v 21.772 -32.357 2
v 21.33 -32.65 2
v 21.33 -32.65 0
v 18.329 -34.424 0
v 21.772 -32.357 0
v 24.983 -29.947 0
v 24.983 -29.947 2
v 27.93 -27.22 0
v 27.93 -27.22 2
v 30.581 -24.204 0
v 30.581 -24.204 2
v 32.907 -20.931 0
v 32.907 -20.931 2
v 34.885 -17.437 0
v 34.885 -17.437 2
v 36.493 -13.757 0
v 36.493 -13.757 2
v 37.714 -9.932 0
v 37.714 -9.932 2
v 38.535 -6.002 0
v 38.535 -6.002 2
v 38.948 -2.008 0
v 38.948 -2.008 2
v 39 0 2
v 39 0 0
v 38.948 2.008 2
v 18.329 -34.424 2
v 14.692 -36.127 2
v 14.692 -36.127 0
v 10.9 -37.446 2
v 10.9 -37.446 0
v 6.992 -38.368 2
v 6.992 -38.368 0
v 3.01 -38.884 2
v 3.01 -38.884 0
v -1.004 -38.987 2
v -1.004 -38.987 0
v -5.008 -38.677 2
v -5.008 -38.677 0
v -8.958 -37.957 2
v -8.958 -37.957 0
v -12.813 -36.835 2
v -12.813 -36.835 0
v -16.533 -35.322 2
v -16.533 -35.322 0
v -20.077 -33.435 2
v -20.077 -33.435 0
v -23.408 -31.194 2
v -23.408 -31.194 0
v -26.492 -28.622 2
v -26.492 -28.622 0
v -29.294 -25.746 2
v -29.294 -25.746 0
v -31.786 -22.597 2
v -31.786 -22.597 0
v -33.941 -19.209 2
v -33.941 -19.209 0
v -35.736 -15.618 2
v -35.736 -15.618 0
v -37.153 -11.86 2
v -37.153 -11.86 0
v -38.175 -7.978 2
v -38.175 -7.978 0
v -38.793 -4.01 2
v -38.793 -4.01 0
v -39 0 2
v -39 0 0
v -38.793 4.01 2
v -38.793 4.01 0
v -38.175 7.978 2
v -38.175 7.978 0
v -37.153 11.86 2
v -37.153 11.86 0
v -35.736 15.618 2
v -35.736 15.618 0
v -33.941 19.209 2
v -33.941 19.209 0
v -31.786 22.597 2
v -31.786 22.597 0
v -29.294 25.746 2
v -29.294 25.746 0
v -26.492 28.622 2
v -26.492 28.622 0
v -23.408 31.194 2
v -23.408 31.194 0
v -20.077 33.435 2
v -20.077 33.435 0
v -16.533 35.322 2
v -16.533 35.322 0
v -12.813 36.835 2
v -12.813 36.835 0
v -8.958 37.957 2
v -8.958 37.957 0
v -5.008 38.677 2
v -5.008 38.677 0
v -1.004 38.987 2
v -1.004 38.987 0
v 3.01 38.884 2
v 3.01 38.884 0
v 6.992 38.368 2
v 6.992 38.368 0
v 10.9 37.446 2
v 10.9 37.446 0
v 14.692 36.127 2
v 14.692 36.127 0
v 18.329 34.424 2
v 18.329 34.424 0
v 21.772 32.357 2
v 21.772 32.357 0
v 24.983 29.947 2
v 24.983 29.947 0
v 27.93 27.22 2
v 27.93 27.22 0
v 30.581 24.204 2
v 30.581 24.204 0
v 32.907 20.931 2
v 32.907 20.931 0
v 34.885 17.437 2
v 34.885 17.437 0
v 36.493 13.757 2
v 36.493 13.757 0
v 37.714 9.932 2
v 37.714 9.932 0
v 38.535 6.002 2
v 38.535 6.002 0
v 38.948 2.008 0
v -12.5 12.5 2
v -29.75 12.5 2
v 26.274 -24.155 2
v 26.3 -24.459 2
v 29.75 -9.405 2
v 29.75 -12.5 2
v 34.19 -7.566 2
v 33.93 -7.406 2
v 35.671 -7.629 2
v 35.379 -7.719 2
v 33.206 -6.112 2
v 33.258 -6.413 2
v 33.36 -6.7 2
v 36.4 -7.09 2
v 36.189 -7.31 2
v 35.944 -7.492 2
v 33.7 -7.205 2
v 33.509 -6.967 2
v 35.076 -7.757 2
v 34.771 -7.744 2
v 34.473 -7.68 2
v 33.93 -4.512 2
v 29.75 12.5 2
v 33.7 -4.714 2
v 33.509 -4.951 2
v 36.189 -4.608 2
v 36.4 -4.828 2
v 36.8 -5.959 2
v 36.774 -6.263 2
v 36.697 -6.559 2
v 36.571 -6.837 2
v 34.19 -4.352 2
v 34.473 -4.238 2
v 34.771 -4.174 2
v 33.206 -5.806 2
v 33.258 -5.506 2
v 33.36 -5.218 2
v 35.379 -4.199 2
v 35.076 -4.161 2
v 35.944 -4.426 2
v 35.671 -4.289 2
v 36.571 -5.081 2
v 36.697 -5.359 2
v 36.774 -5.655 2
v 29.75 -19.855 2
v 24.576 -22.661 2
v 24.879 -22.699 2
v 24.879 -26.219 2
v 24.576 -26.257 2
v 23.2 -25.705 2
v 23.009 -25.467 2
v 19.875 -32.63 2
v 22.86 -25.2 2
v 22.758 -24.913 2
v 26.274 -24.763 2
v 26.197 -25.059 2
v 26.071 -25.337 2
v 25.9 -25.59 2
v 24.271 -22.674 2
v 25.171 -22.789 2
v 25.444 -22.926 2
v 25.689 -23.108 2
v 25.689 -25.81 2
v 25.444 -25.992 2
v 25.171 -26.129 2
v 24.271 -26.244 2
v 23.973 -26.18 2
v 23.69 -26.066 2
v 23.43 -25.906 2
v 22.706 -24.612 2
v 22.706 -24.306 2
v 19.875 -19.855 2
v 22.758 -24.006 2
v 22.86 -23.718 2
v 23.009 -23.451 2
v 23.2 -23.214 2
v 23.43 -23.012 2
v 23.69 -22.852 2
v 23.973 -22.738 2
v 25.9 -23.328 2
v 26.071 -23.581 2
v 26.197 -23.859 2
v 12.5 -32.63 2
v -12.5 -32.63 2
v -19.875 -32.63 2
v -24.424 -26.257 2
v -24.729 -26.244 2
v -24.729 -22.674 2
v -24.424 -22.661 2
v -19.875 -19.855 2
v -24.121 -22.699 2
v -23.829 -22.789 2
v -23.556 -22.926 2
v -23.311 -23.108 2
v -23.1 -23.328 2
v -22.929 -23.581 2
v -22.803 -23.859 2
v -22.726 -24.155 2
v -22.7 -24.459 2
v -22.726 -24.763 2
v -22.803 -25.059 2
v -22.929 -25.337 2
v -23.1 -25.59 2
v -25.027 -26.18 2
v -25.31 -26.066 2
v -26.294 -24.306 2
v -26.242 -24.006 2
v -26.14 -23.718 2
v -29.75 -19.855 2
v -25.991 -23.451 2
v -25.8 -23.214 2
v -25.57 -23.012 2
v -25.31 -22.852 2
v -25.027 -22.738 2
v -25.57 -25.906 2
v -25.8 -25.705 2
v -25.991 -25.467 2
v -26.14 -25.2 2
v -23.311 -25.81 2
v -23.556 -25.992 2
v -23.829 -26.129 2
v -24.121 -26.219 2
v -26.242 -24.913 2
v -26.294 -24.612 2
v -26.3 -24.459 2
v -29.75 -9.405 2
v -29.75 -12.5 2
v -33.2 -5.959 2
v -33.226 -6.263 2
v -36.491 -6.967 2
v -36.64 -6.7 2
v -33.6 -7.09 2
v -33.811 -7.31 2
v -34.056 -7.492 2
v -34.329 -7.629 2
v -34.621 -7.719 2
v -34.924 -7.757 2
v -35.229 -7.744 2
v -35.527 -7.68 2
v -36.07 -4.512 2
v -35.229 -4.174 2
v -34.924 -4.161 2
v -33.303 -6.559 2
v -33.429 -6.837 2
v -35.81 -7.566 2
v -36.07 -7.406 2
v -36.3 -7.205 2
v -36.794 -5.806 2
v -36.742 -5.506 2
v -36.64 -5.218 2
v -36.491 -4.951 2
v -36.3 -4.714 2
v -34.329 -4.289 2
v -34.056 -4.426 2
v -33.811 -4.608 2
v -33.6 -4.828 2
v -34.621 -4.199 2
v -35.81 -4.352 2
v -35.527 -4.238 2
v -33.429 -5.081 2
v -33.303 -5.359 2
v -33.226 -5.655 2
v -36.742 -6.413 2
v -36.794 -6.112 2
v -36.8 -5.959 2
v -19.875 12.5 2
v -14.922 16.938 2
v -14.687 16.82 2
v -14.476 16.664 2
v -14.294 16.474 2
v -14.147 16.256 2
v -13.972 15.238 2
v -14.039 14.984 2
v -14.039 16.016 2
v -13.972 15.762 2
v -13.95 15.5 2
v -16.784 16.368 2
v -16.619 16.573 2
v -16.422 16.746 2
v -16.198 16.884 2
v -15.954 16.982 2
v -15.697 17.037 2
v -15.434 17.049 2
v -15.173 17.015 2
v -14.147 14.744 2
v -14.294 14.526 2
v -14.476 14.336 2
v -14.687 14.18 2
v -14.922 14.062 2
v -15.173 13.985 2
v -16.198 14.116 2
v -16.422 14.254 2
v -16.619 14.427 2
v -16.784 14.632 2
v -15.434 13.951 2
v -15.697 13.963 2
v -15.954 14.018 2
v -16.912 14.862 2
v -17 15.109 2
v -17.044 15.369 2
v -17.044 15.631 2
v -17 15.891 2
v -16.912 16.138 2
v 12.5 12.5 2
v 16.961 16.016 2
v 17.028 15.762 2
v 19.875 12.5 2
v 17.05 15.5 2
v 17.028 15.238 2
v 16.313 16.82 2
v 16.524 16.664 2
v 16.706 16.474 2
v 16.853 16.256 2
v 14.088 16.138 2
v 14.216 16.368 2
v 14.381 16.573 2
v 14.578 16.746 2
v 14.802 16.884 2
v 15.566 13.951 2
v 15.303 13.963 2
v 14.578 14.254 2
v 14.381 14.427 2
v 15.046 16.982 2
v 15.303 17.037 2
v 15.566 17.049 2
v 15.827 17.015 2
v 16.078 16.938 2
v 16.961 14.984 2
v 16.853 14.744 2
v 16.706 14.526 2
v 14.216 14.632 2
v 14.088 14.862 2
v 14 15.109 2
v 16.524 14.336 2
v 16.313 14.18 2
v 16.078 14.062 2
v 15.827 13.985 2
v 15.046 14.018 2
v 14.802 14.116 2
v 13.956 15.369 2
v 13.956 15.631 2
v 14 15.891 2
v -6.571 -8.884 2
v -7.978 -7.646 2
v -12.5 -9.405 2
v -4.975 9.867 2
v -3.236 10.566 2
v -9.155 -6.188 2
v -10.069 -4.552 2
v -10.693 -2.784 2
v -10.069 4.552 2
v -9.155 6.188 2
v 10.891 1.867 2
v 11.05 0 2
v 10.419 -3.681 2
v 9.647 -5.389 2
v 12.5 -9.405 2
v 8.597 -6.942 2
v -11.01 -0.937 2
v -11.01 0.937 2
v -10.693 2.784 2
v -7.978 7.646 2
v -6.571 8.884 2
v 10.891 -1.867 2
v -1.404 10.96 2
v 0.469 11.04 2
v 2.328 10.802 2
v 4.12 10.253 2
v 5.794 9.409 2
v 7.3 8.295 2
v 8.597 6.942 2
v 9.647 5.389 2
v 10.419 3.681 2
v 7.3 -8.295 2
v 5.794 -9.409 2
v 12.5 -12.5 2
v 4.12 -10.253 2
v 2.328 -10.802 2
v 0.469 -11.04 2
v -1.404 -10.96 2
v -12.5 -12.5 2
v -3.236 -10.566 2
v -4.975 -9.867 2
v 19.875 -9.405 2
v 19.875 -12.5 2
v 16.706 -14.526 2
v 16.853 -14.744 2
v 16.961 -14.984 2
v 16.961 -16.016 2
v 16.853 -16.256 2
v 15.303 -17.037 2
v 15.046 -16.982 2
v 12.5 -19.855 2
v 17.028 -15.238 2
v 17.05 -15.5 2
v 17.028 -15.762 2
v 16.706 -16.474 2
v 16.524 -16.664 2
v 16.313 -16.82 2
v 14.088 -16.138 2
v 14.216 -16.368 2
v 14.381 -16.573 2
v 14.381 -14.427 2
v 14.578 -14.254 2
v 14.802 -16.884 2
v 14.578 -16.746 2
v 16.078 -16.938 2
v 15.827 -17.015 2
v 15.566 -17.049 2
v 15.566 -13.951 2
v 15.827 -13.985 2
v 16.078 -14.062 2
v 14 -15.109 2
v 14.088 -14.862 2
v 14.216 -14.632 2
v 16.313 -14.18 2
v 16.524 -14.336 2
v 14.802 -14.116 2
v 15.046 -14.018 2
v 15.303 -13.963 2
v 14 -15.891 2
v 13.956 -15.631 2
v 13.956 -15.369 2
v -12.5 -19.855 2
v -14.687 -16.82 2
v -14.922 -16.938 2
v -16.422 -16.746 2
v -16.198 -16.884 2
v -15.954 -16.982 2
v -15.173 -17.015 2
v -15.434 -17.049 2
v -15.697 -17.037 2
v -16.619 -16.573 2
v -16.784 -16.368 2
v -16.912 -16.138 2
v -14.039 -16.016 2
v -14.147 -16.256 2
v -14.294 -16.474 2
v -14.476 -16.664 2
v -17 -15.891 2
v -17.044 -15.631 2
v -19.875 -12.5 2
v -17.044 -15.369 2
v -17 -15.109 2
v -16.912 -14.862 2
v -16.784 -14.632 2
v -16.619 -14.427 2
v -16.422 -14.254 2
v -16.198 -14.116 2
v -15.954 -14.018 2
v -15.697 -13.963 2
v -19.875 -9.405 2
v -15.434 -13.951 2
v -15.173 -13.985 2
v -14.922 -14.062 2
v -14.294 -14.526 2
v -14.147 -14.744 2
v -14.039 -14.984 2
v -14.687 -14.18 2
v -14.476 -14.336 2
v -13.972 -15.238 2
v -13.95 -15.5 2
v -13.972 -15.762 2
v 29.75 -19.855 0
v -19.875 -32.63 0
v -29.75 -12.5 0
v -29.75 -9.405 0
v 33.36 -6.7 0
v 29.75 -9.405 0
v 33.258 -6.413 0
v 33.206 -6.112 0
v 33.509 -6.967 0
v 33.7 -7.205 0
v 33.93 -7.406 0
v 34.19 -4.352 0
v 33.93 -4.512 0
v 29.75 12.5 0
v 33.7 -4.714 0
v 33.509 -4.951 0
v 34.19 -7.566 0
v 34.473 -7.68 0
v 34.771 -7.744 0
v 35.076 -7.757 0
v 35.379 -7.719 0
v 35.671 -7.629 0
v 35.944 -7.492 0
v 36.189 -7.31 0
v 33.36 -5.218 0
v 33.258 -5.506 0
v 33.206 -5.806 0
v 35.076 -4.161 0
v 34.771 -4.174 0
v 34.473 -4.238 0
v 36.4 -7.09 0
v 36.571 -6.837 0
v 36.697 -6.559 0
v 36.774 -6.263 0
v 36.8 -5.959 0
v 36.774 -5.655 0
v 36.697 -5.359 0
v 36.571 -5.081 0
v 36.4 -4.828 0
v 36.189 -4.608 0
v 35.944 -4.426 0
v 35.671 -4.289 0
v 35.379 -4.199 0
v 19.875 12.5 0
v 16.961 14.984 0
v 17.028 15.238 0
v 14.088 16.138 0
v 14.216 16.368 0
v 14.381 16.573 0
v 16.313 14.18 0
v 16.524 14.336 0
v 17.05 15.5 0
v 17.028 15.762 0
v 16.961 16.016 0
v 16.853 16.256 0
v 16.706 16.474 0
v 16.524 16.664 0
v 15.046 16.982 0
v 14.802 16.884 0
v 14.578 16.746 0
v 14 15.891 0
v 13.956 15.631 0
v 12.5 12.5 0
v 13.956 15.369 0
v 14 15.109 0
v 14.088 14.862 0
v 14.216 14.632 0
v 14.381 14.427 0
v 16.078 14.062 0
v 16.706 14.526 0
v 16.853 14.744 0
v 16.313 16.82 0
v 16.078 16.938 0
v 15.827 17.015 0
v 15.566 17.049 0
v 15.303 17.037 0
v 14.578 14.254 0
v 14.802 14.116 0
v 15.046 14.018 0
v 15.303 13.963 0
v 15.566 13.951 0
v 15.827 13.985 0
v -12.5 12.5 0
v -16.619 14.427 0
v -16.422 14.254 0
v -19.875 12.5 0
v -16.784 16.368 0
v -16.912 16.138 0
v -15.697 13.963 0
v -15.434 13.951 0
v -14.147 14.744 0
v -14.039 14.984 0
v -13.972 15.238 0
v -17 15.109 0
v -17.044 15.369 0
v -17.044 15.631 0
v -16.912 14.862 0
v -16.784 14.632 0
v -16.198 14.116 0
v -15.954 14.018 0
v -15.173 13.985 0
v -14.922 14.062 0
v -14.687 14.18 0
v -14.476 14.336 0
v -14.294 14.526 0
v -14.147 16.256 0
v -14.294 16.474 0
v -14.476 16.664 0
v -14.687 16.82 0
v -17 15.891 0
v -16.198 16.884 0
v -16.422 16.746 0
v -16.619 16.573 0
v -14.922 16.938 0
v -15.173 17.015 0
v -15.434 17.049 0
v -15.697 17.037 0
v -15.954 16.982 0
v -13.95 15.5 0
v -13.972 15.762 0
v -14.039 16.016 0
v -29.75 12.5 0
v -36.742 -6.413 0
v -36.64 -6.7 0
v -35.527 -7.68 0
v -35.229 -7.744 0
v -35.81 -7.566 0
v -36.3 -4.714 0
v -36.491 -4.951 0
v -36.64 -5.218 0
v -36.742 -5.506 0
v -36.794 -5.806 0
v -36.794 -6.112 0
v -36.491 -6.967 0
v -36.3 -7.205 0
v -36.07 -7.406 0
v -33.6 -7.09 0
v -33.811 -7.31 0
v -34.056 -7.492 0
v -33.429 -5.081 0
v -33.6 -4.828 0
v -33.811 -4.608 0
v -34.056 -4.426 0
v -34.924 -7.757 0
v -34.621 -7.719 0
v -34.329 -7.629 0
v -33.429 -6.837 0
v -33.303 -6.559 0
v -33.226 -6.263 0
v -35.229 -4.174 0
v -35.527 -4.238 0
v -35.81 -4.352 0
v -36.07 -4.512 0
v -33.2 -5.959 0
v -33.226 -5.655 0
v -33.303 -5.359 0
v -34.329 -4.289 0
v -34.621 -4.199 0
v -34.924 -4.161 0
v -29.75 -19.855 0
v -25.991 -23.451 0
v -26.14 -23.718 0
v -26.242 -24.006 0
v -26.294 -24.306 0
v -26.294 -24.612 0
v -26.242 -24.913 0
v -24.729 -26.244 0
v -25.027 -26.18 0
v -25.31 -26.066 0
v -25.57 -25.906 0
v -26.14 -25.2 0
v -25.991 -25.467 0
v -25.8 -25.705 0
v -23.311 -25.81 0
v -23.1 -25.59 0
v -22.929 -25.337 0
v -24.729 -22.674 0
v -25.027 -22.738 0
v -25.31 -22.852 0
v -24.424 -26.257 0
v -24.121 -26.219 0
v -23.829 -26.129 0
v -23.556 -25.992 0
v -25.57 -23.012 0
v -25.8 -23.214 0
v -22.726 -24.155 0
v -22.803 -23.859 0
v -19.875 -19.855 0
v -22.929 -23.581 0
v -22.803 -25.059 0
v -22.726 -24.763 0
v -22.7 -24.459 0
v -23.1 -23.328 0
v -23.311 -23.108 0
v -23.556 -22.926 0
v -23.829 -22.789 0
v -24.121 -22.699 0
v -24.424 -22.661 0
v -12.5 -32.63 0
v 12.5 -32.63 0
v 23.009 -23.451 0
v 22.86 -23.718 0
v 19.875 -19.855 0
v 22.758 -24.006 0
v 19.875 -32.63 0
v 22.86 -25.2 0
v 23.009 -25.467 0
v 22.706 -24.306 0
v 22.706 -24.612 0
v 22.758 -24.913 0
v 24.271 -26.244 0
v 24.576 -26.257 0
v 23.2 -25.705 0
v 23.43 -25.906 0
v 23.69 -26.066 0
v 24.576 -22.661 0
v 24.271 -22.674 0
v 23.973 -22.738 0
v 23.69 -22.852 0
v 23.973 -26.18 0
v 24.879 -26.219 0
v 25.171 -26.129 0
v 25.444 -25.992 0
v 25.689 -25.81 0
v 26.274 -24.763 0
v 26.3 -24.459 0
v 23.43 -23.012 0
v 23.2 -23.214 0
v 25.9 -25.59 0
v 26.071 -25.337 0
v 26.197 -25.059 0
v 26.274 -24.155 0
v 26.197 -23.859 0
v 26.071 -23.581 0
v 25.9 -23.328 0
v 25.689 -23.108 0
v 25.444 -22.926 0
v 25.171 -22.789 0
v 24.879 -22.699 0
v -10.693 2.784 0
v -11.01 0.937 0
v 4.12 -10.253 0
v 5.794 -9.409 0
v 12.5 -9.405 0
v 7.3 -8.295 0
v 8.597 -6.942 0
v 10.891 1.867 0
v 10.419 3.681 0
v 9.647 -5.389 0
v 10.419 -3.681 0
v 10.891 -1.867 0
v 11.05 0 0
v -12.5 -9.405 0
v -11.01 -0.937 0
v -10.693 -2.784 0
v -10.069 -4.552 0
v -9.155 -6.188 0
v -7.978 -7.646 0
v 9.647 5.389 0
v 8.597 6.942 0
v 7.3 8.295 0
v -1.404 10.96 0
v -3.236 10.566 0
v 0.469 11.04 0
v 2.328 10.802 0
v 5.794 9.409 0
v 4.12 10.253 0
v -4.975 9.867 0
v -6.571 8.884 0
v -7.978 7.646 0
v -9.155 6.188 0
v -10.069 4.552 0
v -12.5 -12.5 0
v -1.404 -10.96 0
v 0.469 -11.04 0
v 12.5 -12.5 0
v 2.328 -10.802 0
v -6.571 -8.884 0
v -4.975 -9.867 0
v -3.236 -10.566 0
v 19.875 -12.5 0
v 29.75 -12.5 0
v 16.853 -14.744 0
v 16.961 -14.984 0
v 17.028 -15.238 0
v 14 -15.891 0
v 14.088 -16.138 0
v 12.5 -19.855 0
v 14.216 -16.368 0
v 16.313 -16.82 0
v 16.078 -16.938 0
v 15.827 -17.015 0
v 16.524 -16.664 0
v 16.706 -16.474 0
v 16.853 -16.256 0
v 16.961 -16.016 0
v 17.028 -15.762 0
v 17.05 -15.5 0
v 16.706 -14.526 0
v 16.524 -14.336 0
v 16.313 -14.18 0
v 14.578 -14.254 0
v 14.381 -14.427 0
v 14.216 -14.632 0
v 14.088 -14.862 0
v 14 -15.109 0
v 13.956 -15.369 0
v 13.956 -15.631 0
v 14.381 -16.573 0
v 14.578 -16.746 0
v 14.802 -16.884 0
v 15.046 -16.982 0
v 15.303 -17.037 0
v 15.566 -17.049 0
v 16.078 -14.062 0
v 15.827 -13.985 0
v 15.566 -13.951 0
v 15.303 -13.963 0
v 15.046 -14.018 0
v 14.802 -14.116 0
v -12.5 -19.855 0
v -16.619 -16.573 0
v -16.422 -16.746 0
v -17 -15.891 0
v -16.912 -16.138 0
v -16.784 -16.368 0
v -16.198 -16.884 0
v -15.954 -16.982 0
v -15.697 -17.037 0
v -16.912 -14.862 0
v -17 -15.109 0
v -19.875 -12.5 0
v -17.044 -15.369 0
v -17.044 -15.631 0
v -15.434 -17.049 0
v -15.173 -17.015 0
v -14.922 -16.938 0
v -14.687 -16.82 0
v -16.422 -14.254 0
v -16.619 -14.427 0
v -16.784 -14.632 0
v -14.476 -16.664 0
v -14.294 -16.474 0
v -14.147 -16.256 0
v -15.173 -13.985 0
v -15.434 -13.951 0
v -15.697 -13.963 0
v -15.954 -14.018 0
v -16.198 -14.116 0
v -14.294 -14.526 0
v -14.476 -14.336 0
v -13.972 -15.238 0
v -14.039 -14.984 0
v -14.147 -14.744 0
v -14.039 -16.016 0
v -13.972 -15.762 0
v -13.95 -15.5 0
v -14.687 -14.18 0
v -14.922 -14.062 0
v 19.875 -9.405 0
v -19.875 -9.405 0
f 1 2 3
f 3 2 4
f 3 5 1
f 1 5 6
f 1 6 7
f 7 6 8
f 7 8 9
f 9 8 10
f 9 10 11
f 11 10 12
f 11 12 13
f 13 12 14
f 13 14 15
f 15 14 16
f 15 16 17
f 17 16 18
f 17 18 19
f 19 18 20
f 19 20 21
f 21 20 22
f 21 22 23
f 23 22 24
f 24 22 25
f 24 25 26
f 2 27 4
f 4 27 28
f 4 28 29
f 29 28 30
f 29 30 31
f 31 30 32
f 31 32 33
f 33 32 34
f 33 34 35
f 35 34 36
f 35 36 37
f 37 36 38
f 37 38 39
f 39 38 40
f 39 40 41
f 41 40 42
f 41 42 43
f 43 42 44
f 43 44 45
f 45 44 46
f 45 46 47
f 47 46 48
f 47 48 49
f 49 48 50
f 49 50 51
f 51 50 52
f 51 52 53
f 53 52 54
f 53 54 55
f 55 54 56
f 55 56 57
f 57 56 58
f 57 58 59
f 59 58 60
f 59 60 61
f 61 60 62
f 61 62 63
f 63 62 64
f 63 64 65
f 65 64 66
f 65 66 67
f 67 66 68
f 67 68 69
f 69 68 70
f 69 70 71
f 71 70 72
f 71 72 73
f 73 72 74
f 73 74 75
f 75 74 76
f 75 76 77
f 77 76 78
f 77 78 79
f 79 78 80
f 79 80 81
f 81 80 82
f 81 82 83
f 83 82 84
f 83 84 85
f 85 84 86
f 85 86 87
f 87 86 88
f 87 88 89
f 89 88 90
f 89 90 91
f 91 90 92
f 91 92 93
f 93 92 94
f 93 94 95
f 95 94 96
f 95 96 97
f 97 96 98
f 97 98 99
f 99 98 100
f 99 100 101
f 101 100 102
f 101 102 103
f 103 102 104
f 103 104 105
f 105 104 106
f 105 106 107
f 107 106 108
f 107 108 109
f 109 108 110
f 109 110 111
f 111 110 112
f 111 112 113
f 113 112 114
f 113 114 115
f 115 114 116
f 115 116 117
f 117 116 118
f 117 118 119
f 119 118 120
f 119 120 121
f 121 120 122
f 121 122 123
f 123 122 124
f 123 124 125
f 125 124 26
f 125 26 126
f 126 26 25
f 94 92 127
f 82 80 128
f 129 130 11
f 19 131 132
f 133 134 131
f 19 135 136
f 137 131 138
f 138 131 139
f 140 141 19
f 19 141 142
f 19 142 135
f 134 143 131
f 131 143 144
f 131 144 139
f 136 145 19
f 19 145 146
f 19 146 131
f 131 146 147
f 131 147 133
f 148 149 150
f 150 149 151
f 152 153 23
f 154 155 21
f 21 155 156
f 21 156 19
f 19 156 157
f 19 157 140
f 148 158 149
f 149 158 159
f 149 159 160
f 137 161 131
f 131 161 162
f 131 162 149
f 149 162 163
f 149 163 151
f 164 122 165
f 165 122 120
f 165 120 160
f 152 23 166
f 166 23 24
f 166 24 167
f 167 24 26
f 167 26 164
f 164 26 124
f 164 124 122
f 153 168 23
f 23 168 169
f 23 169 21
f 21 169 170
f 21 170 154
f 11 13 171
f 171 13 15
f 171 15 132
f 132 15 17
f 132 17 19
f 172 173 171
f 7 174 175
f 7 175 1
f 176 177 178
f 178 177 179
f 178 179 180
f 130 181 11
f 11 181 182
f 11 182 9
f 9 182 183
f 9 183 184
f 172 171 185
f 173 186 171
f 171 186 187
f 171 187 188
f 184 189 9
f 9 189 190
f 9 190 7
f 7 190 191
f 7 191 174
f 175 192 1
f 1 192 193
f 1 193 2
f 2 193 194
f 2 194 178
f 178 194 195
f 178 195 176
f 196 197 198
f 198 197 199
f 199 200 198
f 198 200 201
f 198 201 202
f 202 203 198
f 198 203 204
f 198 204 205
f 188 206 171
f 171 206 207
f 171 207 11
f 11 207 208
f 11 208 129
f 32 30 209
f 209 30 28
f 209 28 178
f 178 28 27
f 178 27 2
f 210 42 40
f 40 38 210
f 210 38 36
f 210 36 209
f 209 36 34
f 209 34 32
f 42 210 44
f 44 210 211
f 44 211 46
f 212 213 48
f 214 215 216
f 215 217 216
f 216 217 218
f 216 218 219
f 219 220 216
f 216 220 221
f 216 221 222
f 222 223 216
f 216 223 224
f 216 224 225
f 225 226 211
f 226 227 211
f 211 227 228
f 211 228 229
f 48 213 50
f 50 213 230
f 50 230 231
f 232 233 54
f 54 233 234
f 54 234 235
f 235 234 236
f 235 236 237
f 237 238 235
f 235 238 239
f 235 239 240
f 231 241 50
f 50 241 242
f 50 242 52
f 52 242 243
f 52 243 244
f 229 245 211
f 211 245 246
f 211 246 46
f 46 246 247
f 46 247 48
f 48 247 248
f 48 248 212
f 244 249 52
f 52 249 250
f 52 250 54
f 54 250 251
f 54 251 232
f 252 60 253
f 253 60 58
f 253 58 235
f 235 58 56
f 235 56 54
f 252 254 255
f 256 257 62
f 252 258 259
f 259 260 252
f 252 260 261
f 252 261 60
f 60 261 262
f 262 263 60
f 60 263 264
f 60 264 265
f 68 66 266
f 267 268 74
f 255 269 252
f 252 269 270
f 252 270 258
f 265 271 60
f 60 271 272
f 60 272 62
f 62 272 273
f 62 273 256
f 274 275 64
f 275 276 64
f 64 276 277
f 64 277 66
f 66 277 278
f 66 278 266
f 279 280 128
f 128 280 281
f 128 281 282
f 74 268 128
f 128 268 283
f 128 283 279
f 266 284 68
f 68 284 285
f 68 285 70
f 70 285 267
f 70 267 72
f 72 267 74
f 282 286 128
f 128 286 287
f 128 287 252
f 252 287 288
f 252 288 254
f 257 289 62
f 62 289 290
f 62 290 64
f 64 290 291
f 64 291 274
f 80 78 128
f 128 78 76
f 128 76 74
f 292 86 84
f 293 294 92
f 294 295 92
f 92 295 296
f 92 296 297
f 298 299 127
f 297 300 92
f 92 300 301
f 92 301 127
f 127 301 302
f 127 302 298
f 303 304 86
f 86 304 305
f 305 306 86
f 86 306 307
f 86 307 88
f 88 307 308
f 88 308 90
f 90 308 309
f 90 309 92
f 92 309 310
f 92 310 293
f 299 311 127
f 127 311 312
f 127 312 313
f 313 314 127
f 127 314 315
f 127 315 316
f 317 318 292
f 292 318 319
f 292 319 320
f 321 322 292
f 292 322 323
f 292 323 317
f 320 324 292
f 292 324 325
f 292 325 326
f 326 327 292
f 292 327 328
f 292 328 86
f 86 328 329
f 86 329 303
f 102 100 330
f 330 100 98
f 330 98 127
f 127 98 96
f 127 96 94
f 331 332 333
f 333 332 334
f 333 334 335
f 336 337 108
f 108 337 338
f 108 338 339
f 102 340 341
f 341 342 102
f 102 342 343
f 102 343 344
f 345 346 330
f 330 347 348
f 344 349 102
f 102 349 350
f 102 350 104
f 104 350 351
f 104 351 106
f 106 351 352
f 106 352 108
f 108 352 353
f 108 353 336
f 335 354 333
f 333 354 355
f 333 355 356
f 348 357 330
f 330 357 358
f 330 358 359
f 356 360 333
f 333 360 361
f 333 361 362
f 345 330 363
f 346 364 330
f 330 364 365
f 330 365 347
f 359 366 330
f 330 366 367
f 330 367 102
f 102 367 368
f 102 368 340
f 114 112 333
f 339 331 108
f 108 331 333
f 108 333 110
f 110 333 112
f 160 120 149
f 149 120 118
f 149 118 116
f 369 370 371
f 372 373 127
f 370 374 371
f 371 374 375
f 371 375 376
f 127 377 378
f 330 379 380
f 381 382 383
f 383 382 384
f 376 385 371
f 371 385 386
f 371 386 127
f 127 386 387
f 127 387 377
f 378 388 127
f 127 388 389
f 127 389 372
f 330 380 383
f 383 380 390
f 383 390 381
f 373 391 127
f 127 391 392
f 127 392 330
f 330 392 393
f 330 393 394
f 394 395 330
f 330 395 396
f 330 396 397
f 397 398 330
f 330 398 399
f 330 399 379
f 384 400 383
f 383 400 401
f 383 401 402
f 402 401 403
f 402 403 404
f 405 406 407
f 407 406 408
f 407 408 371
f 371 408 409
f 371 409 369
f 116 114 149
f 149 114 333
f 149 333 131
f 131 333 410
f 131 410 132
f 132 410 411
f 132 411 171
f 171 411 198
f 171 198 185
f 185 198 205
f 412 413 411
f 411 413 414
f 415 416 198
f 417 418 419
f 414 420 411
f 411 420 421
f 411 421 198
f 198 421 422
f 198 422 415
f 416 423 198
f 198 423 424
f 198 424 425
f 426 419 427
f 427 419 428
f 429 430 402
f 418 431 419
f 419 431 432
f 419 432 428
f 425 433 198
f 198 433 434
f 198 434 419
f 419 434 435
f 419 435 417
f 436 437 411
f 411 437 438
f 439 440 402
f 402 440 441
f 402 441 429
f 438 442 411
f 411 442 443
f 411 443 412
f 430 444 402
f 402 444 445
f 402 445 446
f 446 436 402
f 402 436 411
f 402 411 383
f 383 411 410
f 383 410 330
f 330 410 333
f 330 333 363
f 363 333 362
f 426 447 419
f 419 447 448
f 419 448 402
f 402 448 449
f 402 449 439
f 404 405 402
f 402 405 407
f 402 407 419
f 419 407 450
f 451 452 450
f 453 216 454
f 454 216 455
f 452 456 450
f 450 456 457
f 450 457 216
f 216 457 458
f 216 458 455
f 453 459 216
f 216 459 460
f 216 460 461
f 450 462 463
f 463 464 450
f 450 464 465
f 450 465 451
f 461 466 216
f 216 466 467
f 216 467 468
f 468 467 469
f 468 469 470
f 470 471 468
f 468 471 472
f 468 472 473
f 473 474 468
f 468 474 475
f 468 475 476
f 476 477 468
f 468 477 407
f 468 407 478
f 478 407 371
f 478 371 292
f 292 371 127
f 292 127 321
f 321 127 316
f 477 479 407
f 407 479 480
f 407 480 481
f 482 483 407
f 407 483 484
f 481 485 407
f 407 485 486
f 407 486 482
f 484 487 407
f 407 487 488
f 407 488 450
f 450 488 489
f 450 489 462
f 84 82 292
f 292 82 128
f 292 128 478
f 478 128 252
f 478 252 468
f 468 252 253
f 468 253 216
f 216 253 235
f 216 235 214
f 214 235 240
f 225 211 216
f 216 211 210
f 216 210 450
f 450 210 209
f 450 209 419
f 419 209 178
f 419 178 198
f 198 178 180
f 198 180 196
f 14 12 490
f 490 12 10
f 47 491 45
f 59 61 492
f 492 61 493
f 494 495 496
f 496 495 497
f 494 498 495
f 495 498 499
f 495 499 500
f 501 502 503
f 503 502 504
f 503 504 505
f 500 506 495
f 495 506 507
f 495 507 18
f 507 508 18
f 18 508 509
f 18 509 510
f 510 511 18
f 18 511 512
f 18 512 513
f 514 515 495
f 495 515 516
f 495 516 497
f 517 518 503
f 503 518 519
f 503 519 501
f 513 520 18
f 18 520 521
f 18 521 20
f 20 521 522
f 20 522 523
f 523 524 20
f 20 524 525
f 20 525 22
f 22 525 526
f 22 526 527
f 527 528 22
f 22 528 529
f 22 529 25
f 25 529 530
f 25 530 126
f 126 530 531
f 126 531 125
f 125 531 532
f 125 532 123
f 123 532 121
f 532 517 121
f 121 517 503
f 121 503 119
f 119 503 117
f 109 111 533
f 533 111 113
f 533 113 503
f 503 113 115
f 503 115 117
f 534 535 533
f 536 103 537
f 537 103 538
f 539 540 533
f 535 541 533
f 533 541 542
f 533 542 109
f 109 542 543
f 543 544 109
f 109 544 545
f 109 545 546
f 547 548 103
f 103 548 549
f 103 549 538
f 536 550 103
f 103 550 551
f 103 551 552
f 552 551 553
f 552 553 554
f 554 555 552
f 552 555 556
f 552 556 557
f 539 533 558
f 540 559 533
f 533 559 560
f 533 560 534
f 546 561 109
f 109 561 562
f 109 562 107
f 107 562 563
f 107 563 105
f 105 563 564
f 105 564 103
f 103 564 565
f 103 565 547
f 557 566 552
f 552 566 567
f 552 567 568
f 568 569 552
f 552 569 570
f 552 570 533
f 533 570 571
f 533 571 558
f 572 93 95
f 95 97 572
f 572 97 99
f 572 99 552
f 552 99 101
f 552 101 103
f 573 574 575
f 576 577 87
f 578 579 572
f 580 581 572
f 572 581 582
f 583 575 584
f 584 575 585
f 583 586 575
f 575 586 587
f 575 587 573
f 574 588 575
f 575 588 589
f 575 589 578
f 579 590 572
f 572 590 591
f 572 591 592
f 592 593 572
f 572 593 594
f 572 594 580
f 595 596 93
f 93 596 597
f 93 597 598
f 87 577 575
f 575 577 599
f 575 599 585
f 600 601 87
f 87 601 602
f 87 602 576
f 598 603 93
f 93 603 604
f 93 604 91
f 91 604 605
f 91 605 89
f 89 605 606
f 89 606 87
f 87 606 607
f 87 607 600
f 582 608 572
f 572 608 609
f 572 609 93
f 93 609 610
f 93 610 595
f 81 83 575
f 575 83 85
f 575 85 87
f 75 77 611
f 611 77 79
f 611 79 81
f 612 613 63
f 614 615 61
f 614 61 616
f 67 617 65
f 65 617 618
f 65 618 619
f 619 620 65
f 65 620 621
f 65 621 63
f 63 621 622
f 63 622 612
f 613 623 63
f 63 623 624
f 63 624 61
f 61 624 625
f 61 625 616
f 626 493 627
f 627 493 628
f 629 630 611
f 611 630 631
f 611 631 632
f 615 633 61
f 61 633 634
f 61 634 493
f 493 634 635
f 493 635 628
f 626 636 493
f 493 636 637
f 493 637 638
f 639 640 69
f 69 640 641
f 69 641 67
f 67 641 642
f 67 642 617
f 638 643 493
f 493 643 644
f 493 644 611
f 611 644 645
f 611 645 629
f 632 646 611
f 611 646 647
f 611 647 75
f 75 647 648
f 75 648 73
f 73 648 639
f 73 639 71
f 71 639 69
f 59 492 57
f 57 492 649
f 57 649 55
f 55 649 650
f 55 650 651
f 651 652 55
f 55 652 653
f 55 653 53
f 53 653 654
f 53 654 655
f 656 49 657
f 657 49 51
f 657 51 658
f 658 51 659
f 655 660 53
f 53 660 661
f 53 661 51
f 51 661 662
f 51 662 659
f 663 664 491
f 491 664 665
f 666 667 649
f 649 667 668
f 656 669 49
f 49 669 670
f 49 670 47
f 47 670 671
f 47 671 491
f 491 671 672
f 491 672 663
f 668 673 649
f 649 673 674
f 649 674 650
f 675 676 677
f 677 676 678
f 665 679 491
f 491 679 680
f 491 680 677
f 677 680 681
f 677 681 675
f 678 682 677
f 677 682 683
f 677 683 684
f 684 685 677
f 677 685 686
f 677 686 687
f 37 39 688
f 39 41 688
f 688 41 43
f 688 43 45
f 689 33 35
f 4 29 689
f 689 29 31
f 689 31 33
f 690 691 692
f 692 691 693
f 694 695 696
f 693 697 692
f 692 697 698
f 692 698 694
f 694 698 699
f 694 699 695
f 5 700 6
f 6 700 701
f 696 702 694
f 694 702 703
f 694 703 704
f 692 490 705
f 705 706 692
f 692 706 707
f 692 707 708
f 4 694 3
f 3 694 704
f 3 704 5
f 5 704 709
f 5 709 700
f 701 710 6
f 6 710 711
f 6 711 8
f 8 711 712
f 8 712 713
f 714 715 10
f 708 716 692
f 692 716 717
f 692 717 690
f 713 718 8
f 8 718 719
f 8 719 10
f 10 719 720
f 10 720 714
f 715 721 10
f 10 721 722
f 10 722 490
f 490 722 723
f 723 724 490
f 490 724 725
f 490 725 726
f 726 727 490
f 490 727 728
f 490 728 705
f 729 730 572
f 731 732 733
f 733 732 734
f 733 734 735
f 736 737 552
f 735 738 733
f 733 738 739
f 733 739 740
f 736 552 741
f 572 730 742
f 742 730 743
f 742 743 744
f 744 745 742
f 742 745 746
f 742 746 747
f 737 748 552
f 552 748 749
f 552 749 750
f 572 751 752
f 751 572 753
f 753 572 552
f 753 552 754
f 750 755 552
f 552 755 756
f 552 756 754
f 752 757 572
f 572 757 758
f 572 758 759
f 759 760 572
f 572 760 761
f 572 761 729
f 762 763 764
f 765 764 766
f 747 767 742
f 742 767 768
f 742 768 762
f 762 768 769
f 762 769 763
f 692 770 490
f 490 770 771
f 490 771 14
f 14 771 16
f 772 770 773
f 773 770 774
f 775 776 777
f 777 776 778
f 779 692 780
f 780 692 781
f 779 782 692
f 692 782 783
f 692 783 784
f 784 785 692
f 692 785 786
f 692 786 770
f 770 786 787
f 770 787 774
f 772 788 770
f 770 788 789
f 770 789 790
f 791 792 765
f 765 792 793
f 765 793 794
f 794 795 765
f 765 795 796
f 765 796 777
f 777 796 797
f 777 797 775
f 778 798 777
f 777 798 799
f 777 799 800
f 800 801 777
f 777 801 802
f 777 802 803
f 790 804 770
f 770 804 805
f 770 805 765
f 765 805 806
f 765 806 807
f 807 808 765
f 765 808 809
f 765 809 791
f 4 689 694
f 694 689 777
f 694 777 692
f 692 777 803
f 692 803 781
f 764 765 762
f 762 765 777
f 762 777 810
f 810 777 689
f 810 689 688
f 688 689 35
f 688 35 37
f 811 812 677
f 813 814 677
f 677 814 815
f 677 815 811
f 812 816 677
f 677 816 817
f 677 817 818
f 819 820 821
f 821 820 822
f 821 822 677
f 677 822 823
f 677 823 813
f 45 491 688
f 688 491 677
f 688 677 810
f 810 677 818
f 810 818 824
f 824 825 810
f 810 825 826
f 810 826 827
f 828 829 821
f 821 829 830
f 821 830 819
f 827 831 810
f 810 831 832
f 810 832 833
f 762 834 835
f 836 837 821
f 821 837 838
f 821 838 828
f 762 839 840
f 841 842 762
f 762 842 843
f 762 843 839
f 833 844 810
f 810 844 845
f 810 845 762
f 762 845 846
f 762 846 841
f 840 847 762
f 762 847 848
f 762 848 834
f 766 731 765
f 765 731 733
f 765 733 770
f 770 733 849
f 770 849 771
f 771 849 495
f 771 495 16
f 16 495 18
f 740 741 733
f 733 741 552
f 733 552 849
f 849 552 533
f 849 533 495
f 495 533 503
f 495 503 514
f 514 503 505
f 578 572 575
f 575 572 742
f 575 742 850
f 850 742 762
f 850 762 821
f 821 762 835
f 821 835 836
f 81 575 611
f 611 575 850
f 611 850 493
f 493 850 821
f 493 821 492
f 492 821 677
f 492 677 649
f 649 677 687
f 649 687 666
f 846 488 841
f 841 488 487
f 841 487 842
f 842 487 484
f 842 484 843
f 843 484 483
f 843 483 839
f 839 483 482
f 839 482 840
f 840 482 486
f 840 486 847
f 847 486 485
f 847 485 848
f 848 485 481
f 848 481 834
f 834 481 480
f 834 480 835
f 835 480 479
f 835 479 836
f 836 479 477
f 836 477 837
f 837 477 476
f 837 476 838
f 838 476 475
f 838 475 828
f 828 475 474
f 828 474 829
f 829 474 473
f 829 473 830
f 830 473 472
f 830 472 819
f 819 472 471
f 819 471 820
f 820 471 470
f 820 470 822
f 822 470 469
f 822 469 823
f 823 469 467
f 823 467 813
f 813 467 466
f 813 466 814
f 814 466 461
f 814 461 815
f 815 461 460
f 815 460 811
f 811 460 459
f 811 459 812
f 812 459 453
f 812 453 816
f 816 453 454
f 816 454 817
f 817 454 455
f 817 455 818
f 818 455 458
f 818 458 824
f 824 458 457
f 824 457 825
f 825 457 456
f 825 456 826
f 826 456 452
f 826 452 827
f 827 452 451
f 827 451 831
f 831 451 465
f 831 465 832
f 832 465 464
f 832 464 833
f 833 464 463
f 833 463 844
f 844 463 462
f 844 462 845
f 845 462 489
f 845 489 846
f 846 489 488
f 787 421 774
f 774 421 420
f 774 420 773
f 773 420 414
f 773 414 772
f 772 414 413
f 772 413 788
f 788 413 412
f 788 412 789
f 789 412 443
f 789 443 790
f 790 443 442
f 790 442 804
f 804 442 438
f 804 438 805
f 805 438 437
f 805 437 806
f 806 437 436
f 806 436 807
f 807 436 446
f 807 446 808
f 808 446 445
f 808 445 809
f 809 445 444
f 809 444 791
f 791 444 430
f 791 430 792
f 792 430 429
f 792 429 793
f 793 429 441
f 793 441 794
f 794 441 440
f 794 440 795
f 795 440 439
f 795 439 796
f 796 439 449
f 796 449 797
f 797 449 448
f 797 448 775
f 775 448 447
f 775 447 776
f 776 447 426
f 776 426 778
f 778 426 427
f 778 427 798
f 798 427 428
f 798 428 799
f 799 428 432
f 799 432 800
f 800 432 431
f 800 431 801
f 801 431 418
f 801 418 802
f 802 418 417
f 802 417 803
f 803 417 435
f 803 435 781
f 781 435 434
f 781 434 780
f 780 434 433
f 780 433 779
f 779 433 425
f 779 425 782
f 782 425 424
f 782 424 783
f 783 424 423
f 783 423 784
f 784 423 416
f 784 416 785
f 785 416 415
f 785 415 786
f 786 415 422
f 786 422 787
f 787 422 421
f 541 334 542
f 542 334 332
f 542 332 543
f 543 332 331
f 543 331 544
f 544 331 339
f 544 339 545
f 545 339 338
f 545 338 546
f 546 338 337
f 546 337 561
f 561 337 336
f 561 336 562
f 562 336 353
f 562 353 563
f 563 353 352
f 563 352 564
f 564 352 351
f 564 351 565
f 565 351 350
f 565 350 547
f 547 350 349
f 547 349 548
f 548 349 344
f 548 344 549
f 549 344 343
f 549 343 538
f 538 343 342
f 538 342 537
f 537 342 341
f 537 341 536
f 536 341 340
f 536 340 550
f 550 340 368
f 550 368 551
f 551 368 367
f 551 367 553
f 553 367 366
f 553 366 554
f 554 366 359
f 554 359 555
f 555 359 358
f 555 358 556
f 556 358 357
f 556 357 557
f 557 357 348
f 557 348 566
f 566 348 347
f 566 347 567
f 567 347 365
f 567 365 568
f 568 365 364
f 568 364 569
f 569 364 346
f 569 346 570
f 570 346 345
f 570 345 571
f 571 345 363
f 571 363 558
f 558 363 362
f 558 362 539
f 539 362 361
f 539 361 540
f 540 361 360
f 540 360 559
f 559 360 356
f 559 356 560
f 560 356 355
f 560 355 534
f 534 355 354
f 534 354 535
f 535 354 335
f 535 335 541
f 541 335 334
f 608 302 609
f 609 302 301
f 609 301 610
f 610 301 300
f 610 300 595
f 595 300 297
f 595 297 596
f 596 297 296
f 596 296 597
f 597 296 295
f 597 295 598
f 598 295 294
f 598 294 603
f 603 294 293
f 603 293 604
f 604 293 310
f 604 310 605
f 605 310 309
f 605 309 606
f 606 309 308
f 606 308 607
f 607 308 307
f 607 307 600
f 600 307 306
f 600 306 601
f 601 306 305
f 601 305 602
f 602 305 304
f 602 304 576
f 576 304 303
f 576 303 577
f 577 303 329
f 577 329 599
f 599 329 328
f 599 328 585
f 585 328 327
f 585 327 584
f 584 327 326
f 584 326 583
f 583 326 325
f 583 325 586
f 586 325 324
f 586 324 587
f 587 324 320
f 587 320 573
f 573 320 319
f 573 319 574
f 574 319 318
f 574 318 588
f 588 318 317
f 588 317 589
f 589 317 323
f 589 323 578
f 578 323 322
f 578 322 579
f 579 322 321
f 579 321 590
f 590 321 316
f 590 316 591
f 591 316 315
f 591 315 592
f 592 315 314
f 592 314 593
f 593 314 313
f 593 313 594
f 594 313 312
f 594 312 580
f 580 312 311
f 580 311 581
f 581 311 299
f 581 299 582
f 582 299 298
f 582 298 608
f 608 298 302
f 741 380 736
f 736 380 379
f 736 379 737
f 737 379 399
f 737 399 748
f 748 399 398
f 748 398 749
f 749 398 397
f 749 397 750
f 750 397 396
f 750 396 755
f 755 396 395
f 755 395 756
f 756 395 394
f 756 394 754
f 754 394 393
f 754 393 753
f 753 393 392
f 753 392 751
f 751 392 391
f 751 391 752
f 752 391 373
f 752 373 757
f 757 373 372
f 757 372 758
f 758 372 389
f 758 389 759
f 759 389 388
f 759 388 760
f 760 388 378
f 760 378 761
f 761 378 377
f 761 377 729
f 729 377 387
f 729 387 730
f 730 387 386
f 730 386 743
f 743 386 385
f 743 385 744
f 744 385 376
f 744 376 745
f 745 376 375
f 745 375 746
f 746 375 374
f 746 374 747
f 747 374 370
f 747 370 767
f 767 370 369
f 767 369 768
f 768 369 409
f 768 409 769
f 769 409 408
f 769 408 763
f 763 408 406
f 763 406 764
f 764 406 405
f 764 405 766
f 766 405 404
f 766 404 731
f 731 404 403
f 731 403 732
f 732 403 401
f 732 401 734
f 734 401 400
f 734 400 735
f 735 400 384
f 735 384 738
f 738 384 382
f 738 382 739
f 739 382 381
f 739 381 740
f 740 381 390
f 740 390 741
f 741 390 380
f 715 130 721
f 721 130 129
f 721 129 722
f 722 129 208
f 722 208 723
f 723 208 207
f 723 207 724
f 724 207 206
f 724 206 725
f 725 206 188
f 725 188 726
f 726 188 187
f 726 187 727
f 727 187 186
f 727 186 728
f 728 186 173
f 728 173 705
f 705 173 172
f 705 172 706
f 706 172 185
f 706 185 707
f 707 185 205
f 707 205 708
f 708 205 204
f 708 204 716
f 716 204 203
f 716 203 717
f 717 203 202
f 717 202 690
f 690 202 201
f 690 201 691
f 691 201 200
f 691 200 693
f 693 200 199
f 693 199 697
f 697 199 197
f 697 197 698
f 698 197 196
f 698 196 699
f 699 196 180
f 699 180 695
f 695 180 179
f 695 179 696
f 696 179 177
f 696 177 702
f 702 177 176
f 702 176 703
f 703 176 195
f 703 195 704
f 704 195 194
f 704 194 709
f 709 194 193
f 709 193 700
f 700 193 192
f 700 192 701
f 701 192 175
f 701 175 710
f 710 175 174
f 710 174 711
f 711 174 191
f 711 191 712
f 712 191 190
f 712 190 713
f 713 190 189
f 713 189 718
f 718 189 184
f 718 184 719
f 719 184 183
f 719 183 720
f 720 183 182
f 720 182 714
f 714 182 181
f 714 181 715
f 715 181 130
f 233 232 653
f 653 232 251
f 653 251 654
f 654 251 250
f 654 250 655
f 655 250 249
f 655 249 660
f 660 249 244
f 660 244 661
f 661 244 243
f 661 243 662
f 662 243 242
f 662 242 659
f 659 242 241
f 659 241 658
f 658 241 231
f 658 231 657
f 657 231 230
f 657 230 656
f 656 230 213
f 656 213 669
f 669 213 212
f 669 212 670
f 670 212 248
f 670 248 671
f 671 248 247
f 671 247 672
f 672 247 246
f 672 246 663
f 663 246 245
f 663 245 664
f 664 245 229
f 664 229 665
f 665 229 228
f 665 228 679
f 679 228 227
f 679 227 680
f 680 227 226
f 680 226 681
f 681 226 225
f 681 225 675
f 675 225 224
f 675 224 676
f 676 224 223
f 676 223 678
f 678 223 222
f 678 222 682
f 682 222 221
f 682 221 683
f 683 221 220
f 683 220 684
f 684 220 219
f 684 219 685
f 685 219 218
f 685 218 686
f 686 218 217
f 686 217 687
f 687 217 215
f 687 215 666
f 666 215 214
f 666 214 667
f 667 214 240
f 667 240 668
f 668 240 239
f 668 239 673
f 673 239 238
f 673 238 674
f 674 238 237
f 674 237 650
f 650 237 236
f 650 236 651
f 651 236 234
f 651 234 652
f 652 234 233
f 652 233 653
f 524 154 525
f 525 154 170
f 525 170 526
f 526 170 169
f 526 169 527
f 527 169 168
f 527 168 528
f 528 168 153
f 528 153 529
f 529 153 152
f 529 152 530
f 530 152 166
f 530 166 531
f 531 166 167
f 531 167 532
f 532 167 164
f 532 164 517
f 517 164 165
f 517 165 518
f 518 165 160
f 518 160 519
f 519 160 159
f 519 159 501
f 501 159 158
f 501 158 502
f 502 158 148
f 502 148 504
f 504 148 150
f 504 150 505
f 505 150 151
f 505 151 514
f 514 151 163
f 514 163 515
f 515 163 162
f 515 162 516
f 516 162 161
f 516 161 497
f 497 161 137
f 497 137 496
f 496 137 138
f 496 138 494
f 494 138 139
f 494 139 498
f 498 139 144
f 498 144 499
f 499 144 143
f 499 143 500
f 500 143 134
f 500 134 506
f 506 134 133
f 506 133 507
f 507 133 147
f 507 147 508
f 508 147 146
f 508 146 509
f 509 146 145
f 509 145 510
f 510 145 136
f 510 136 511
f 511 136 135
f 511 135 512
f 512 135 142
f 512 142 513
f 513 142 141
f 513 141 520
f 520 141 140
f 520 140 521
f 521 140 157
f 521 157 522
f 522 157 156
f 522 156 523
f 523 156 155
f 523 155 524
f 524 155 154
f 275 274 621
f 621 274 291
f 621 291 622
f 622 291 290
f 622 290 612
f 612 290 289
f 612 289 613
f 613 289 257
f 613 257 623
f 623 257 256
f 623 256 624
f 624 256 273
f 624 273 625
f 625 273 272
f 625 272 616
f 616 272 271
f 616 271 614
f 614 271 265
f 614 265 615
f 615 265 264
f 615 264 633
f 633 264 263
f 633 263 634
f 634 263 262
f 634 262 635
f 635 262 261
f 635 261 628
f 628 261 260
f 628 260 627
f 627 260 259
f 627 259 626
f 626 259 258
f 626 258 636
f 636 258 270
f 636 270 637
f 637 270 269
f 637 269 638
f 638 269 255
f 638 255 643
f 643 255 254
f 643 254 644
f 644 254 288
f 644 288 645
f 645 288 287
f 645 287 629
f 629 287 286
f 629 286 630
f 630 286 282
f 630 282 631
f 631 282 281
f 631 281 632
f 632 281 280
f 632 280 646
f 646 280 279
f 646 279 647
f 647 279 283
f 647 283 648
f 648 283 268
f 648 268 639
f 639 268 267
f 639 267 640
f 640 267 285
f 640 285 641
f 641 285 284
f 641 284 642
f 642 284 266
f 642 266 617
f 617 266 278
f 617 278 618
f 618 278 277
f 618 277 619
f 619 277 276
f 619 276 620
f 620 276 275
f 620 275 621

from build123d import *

# Parameters (mm, degrees)
SKETCH_1_R          = 39
EXTRUDE_1_DEPTH     = 2
SKETCH_3_R          = 1.55
CUT_EXTRUDE_2_DEPTH = 2
SKETCH_4_R          = 11.05
CUT_EXTRUDE_3_DEPTH = 2
SKETCH_6_R          = 1.8
CUT_EXTRUDE_4_DEPTH = 10


with BuildPart() as part:
    # 草图1 → 凸台-拉伸1 (new body)
    with BuildSketch(Plane.XY):
        Circle(SKETCH_1_R)
    extrude(amount=EXTRUDE_1_DEPTH)

    # 草图3 → 切除-拉伸2 (cut)
    with BuildSketch(Plane.XY.offset(2)):
        with Locations((-15.5, -15.5)):
            Circle(SKETCH_3_R)
        with Locations((15.5, -15.5)):
            Circle(SKETCH_3_R)
        with Locations((15.5, 15.5)):
            Circle(SKETCH_3_R)
        with Locations((-15.5, 15.5)):
            Circle(SKETCH_3_R)
    extrude(amount=-CUT_EXTRUDE_2_DEPTH, mode=Mode.SUBTRACT)

    # 草图4 → 切除-拉伸3 (cut)
    with BuildSketch(Plane.XY.offset(2)):
        Circle(SKETCH_4_R)
    extrude(amount=-CUT_EXTRUDE_3_DEPTH, mode=Mode.SUBTRACT)

    # 草图6 → 切除-拉伸4 (cut)
    with BuildSketch(Plane.XY.offset(2)):
        with Locations((24.5, -24.459064842)):
            Circle(SKETCH_6_R)
        with Locations((-24.5, -24.459064842)):
            Circle(SKETCH_6_R)
        with Locations((35, -5.959064842)):
            Circle(SKETCH_6_R)
        with Locations((-35, -5.959064842)):
            Circle(SKETCH_6_R)
    extrude(amount=-CUT_EXTRUDE_4_DEPTH, mode=Mode.SUBTRACT)


solid = part.part
